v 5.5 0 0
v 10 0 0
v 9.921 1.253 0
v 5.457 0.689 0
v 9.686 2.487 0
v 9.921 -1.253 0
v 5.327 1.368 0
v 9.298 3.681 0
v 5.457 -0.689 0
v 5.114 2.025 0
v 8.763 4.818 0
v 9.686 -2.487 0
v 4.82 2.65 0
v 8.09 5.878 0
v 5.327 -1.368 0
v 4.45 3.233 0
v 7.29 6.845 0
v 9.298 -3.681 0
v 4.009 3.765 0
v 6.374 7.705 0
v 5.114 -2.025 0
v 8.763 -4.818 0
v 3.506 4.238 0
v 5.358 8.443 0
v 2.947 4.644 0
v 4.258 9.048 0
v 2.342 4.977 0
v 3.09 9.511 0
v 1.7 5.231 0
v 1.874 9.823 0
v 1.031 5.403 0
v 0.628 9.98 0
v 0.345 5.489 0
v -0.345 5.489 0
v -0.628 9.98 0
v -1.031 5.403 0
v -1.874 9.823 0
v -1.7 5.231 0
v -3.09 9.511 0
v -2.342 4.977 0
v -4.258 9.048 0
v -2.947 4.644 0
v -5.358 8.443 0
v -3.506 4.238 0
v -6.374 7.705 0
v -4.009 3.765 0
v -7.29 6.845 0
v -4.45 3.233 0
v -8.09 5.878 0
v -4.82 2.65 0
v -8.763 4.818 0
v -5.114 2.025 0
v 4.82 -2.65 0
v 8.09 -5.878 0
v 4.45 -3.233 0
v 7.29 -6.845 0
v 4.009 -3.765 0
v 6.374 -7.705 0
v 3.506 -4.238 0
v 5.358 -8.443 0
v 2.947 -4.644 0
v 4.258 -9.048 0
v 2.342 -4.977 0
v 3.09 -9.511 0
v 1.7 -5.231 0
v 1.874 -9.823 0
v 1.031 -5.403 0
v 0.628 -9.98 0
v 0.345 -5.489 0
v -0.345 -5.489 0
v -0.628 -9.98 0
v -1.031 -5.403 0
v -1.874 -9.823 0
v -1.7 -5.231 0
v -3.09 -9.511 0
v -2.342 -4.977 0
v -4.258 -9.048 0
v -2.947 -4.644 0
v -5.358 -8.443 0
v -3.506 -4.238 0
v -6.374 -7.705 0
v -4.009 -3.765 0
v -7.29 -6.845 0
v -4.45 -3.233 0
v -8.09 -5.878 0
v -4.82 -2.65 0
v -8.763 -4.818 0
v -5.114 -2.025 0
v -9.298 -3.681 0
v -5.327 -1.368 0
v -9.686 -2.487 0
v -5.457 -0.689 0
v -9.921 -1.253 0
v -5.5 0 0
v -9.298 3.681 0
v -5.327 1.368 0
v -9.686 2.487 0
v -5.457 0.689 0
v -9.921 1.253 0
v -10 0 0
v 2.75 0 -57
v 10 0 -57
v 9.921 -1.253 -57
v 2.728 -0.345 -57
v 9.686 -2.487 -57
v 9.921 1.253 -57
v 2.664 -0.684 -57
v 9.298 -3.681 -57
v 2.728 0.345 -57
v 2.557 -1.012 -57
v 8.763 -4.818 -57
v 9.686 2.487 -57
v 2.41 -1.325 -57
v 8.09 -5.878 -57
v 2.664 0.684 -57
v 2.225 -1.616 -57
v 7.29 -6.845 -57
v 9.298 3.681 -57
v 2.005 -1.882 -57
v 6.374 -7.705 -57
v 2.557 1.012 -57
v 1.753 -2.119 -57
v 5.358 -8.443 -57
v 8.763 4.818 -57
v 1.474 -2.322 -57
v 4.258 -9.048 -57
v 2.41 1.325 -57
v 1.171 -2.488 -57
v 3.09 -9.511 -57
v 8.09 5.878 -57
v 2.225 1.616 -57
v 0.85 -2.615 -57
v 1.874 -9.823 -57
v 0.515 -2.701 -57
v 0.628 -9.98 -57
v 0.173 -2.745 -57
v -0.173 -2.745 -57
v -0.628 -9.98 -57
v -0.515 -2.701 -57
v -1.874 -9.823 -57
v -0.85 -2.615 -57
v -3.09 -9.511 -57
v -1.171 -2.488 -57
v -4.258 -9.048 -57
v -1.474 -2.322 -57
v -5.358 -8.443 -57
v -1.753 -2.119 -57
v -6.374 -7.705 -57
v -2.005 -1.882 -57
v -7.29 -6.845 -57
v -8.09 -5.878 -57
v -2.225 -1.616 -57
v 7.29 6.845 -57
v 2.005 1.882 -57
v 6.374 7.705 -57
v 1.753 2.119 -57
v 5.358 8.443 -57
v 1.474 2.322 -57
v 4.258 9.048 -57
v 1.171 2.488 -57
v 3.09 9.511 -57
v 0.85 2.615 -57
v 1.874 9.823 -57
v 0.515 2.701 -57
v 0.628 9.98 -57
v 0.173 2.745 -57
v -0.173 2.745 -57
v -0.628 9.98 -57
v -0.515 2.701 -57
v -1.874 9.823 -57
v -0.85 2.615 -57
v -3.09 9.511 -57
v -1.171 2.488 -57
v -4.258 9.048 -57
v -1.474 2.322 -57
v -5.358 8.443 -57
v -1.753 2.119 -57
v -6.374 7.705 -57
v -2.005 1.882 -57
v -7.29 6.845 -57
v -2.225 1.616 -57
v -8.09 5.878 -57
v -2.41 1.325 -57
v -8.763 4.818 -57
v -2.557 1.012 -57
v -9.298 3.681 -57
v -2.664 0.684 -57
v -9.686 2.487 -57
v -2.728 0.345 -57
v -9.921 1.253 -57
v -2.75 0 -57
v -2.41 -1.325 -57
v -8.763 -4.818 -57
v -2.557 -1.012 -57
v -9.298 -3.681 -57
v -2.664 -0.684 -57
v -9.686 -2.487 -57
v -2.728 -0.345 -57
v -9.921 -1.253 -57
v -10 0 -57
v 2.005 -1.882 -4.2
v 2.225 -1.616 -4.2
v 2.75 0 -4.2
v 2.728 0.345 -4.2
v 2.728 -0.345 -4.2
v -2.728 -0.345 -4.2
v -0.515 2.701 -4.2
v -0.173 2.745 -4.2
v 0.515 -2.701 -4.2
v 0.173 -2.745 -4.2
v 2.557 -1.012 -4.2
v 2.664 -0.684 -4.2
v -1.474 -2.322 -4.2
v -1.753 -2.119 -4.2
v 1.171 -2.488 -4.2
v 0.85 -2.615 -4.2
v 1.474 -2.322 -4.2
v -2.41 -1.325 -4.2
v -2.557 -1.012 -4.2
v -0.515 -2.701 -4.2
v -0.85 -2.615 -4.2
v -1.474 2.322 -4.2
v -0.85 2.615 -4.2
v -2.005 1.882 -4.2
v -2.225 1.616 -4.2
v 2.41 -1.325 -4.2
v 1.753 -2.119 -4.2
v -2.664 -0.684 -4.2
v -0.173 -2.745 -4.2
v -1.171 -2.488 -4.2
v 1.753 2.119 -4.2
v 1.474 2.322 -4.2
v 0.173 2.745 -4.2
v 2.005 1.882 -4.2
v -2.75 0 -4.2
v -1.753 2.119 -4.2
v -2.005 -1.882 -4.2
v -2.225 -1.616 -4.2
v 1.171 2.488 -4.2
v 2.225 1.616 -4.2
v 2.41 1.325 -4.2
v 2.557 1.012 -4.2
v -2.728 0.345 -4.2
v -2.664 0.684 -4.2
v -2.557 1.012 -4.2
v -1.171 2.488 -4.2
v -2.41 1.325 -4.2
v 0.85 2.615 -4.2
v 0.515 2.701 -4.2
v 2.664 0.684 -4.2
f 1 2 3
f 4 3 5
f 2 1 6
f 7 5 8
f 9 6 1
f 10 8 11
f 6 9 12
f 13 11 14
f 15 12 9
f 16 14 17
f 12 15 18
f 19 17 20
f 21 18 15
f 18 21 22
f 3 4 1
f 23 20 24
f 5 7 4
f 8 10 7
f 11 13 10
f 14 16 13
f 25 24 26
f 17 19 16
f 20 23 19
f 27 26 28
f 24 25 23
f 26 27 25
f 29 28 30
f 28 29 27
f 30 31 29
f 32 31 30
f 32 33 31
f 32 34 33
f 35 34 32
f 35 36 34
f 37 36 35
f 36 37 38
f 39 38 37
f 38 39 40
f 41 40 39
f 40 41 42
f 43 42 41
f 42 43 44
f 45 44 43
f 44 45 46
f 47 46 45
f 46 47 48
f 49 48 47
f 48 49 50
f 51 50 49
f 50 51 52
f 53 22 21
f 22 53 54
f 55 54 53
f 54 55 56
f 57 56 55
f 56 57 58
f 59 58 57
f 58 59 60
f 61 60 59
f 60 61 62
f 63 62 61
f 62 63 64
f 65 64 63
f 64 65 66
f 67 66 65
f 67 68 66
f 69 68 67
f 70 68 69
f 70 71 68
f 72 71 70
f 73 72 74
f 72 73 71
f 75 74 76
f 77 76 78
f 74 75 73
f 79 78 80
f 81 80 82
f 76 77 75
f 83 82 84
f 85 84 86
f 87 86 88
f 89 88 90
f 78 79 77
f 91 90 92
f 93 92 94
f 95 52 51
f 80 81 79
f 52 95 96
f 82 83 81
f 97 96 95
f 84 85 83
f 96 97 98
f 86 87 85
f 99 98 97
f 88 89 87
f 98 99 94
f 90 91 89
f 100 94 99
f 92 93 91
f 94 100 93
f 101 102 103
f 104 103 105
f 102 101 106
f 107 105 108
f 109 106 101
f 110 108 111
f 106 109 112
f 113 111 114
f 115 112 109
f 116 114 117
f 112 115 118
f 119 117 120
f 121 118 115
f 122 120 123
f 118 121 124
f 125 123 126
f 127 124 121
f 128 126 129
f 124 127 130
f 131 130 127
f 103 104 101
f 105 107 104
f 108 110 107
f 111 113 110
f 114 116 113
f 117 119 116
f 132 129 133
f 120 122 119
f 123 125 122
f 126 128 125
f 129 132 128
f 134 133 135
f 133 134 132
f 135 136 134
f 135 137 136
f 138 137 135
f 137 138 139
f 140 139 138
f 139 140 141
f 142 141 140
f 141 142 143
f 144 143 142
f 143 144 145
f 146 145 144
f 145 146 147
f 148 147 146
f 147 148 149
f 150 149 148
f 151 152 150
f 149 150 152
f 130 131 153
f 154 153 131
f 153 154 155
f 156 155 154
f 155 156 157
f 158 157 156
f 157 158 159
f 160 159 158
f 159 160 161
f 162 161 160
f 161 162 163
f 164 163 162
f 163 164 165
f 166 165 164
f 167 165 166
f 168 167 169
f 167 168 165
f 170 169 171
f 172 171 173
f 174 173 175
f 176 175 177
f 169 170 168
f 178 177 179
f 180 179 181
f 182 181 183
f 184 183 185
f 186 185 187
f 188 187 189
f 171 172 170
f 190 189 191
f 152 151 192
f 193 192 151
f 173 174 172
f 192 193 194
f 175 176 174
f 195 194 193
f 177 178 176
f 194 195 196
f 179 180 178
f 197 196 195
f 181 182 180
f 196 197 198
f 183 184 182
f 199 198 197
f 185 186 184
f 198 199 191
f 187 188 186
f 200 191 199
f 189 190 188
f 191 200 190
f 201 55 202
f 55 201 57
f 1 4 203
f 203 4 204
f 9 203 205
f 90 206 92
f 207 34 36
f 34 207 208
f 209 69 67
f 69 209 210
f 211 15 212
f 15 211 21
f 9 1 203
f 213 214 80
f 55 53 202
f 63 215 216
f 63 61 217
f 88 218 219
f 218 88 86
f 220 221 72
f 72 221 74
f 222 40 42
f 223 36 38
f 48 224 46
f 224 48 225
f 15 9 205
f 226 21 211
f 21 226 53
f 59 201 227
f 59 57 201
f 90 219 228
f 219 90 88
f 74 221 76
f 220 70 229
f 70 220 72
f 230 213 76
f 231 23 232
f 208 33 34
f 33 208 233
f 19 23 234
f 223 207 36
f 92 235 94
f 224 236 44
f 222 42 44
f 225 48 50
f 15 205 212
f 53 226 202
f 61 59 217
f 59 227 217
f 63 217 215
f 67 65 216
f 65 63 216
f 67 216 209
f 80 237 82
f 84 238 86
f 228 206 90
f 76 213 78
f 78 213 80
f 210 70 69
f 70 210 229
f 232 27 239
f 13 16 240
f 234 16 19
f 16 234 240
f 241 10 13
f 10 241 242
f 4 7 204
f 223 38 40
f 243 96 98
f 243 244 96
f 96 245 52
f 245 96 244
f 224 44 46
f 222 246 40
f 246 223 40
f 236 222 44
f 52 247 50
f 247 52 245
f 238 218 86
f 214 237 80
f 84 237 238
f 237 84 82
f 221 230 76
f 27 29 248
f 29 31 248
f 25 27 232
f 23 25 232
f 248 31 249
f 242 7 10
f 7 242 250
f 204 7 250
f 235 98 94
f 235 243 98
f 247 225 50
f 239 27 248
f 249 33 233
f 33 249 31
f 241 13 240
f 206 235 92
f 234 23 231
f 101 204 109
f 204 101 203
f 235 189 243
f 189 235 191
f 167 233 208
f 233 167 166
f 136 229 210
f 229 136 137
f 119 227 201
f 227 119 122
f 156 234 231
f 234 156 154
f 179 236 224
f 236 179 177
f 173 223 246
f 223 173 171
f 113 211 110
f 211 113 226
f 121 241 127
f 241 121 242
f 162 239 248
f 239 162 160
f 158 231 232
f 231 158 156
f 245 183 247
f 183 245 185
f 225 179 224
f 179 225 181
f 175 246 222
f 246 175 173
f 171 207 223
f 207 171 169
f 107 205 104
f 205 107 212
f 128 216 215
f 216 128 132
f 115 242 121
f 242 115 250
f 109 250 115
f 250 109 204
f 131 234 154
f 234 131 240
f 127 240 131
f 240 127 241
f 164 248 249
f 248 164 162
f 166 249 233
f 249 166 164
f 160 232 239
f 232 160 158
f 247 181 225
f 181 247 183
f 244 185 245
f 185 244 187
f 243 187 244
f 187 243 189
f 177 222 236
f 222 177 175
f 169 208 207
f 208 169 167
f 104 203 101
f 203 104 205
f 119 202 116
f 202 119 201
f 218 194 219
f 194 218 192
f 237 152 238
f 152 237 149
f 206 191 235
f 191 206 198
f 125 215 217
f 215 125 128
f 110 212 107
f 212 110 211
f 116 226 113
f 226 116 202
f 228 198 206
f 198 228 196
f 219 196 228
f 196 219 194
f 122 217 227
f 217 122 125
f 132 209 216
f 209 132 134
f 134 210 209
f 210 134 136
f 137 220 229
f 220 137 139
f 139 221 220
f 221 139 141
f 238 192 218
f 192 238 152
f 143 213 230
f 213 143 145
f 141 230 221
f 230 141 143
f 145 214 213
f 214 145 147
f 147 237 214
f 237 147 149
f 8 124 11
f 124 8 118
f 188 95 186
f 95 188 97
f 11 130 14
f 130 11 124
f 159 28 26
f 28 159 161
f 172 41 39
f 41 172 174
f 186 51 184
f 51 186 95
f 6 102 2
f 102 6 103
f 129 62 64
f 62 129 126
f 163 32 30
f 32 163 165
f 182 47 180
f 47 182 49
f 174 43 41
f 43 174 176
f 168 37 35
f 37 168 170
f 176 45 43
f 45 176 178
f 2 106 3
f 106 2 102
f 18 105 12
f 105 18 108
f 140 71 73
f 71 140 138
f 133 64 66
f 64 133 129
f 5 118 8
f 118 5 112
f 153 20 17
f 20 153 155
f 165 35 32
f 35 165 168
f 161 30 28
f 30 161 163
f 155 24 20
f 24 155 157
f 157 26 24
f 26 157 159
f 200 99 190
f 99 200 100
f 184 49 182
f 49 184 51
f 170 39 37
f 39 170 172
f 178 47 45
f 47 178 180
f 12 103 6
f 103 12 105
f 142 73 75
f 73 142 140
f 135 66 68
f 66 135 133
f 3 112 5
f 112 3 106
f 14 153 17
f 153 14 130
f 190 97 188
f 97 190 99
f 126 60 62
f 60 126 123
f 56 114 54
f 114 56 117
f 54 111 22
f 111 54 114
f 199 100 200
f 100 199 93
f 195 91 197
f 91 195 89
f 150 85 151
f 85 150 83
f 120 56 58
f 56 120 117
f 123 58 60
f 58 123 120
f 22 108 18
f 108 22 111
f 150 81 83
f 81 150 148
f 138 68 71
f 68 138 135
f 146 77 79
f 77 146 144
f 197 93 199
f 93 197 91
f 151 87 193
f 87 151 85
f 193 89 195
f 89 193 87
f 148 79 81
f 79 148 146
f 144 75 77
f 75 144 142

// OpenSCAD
$fn = 50;


difference() {
	union() {
		translate(v = [0, 0, -57.0000000000]) {
			cylinder(h = 57, r = 10.0000000000);
		}
		cylinder(h = 0, r = 19.0000000000);
	}
	union() {
		translate(v = [0, 0, 0]) {
			rotate(a = [0, 0, 0]) {
				difference() {
					union() {
						#translate(v = [0, 0, -57.0000000000]) {
							cylinder(h = 57, r = 2.2500000000);
						}
						#translate(v = [0, 0, -4.2000000000]) {
							cylinder(h = 4.2000000000, r1 = 2.7500000000, r2 = 5.5000000000);
						}
						#translate(v = [0, 0, -57.0000000000]) {
							cylinder(h = 57, r = 2.7500000000);
						}
						#translate(v = [0, 0, -57.0000000000]) {
							cylinder(h = 57, r = 2.2500000000);
						}
					}
					union();
				}
			}
		}
	}
}
